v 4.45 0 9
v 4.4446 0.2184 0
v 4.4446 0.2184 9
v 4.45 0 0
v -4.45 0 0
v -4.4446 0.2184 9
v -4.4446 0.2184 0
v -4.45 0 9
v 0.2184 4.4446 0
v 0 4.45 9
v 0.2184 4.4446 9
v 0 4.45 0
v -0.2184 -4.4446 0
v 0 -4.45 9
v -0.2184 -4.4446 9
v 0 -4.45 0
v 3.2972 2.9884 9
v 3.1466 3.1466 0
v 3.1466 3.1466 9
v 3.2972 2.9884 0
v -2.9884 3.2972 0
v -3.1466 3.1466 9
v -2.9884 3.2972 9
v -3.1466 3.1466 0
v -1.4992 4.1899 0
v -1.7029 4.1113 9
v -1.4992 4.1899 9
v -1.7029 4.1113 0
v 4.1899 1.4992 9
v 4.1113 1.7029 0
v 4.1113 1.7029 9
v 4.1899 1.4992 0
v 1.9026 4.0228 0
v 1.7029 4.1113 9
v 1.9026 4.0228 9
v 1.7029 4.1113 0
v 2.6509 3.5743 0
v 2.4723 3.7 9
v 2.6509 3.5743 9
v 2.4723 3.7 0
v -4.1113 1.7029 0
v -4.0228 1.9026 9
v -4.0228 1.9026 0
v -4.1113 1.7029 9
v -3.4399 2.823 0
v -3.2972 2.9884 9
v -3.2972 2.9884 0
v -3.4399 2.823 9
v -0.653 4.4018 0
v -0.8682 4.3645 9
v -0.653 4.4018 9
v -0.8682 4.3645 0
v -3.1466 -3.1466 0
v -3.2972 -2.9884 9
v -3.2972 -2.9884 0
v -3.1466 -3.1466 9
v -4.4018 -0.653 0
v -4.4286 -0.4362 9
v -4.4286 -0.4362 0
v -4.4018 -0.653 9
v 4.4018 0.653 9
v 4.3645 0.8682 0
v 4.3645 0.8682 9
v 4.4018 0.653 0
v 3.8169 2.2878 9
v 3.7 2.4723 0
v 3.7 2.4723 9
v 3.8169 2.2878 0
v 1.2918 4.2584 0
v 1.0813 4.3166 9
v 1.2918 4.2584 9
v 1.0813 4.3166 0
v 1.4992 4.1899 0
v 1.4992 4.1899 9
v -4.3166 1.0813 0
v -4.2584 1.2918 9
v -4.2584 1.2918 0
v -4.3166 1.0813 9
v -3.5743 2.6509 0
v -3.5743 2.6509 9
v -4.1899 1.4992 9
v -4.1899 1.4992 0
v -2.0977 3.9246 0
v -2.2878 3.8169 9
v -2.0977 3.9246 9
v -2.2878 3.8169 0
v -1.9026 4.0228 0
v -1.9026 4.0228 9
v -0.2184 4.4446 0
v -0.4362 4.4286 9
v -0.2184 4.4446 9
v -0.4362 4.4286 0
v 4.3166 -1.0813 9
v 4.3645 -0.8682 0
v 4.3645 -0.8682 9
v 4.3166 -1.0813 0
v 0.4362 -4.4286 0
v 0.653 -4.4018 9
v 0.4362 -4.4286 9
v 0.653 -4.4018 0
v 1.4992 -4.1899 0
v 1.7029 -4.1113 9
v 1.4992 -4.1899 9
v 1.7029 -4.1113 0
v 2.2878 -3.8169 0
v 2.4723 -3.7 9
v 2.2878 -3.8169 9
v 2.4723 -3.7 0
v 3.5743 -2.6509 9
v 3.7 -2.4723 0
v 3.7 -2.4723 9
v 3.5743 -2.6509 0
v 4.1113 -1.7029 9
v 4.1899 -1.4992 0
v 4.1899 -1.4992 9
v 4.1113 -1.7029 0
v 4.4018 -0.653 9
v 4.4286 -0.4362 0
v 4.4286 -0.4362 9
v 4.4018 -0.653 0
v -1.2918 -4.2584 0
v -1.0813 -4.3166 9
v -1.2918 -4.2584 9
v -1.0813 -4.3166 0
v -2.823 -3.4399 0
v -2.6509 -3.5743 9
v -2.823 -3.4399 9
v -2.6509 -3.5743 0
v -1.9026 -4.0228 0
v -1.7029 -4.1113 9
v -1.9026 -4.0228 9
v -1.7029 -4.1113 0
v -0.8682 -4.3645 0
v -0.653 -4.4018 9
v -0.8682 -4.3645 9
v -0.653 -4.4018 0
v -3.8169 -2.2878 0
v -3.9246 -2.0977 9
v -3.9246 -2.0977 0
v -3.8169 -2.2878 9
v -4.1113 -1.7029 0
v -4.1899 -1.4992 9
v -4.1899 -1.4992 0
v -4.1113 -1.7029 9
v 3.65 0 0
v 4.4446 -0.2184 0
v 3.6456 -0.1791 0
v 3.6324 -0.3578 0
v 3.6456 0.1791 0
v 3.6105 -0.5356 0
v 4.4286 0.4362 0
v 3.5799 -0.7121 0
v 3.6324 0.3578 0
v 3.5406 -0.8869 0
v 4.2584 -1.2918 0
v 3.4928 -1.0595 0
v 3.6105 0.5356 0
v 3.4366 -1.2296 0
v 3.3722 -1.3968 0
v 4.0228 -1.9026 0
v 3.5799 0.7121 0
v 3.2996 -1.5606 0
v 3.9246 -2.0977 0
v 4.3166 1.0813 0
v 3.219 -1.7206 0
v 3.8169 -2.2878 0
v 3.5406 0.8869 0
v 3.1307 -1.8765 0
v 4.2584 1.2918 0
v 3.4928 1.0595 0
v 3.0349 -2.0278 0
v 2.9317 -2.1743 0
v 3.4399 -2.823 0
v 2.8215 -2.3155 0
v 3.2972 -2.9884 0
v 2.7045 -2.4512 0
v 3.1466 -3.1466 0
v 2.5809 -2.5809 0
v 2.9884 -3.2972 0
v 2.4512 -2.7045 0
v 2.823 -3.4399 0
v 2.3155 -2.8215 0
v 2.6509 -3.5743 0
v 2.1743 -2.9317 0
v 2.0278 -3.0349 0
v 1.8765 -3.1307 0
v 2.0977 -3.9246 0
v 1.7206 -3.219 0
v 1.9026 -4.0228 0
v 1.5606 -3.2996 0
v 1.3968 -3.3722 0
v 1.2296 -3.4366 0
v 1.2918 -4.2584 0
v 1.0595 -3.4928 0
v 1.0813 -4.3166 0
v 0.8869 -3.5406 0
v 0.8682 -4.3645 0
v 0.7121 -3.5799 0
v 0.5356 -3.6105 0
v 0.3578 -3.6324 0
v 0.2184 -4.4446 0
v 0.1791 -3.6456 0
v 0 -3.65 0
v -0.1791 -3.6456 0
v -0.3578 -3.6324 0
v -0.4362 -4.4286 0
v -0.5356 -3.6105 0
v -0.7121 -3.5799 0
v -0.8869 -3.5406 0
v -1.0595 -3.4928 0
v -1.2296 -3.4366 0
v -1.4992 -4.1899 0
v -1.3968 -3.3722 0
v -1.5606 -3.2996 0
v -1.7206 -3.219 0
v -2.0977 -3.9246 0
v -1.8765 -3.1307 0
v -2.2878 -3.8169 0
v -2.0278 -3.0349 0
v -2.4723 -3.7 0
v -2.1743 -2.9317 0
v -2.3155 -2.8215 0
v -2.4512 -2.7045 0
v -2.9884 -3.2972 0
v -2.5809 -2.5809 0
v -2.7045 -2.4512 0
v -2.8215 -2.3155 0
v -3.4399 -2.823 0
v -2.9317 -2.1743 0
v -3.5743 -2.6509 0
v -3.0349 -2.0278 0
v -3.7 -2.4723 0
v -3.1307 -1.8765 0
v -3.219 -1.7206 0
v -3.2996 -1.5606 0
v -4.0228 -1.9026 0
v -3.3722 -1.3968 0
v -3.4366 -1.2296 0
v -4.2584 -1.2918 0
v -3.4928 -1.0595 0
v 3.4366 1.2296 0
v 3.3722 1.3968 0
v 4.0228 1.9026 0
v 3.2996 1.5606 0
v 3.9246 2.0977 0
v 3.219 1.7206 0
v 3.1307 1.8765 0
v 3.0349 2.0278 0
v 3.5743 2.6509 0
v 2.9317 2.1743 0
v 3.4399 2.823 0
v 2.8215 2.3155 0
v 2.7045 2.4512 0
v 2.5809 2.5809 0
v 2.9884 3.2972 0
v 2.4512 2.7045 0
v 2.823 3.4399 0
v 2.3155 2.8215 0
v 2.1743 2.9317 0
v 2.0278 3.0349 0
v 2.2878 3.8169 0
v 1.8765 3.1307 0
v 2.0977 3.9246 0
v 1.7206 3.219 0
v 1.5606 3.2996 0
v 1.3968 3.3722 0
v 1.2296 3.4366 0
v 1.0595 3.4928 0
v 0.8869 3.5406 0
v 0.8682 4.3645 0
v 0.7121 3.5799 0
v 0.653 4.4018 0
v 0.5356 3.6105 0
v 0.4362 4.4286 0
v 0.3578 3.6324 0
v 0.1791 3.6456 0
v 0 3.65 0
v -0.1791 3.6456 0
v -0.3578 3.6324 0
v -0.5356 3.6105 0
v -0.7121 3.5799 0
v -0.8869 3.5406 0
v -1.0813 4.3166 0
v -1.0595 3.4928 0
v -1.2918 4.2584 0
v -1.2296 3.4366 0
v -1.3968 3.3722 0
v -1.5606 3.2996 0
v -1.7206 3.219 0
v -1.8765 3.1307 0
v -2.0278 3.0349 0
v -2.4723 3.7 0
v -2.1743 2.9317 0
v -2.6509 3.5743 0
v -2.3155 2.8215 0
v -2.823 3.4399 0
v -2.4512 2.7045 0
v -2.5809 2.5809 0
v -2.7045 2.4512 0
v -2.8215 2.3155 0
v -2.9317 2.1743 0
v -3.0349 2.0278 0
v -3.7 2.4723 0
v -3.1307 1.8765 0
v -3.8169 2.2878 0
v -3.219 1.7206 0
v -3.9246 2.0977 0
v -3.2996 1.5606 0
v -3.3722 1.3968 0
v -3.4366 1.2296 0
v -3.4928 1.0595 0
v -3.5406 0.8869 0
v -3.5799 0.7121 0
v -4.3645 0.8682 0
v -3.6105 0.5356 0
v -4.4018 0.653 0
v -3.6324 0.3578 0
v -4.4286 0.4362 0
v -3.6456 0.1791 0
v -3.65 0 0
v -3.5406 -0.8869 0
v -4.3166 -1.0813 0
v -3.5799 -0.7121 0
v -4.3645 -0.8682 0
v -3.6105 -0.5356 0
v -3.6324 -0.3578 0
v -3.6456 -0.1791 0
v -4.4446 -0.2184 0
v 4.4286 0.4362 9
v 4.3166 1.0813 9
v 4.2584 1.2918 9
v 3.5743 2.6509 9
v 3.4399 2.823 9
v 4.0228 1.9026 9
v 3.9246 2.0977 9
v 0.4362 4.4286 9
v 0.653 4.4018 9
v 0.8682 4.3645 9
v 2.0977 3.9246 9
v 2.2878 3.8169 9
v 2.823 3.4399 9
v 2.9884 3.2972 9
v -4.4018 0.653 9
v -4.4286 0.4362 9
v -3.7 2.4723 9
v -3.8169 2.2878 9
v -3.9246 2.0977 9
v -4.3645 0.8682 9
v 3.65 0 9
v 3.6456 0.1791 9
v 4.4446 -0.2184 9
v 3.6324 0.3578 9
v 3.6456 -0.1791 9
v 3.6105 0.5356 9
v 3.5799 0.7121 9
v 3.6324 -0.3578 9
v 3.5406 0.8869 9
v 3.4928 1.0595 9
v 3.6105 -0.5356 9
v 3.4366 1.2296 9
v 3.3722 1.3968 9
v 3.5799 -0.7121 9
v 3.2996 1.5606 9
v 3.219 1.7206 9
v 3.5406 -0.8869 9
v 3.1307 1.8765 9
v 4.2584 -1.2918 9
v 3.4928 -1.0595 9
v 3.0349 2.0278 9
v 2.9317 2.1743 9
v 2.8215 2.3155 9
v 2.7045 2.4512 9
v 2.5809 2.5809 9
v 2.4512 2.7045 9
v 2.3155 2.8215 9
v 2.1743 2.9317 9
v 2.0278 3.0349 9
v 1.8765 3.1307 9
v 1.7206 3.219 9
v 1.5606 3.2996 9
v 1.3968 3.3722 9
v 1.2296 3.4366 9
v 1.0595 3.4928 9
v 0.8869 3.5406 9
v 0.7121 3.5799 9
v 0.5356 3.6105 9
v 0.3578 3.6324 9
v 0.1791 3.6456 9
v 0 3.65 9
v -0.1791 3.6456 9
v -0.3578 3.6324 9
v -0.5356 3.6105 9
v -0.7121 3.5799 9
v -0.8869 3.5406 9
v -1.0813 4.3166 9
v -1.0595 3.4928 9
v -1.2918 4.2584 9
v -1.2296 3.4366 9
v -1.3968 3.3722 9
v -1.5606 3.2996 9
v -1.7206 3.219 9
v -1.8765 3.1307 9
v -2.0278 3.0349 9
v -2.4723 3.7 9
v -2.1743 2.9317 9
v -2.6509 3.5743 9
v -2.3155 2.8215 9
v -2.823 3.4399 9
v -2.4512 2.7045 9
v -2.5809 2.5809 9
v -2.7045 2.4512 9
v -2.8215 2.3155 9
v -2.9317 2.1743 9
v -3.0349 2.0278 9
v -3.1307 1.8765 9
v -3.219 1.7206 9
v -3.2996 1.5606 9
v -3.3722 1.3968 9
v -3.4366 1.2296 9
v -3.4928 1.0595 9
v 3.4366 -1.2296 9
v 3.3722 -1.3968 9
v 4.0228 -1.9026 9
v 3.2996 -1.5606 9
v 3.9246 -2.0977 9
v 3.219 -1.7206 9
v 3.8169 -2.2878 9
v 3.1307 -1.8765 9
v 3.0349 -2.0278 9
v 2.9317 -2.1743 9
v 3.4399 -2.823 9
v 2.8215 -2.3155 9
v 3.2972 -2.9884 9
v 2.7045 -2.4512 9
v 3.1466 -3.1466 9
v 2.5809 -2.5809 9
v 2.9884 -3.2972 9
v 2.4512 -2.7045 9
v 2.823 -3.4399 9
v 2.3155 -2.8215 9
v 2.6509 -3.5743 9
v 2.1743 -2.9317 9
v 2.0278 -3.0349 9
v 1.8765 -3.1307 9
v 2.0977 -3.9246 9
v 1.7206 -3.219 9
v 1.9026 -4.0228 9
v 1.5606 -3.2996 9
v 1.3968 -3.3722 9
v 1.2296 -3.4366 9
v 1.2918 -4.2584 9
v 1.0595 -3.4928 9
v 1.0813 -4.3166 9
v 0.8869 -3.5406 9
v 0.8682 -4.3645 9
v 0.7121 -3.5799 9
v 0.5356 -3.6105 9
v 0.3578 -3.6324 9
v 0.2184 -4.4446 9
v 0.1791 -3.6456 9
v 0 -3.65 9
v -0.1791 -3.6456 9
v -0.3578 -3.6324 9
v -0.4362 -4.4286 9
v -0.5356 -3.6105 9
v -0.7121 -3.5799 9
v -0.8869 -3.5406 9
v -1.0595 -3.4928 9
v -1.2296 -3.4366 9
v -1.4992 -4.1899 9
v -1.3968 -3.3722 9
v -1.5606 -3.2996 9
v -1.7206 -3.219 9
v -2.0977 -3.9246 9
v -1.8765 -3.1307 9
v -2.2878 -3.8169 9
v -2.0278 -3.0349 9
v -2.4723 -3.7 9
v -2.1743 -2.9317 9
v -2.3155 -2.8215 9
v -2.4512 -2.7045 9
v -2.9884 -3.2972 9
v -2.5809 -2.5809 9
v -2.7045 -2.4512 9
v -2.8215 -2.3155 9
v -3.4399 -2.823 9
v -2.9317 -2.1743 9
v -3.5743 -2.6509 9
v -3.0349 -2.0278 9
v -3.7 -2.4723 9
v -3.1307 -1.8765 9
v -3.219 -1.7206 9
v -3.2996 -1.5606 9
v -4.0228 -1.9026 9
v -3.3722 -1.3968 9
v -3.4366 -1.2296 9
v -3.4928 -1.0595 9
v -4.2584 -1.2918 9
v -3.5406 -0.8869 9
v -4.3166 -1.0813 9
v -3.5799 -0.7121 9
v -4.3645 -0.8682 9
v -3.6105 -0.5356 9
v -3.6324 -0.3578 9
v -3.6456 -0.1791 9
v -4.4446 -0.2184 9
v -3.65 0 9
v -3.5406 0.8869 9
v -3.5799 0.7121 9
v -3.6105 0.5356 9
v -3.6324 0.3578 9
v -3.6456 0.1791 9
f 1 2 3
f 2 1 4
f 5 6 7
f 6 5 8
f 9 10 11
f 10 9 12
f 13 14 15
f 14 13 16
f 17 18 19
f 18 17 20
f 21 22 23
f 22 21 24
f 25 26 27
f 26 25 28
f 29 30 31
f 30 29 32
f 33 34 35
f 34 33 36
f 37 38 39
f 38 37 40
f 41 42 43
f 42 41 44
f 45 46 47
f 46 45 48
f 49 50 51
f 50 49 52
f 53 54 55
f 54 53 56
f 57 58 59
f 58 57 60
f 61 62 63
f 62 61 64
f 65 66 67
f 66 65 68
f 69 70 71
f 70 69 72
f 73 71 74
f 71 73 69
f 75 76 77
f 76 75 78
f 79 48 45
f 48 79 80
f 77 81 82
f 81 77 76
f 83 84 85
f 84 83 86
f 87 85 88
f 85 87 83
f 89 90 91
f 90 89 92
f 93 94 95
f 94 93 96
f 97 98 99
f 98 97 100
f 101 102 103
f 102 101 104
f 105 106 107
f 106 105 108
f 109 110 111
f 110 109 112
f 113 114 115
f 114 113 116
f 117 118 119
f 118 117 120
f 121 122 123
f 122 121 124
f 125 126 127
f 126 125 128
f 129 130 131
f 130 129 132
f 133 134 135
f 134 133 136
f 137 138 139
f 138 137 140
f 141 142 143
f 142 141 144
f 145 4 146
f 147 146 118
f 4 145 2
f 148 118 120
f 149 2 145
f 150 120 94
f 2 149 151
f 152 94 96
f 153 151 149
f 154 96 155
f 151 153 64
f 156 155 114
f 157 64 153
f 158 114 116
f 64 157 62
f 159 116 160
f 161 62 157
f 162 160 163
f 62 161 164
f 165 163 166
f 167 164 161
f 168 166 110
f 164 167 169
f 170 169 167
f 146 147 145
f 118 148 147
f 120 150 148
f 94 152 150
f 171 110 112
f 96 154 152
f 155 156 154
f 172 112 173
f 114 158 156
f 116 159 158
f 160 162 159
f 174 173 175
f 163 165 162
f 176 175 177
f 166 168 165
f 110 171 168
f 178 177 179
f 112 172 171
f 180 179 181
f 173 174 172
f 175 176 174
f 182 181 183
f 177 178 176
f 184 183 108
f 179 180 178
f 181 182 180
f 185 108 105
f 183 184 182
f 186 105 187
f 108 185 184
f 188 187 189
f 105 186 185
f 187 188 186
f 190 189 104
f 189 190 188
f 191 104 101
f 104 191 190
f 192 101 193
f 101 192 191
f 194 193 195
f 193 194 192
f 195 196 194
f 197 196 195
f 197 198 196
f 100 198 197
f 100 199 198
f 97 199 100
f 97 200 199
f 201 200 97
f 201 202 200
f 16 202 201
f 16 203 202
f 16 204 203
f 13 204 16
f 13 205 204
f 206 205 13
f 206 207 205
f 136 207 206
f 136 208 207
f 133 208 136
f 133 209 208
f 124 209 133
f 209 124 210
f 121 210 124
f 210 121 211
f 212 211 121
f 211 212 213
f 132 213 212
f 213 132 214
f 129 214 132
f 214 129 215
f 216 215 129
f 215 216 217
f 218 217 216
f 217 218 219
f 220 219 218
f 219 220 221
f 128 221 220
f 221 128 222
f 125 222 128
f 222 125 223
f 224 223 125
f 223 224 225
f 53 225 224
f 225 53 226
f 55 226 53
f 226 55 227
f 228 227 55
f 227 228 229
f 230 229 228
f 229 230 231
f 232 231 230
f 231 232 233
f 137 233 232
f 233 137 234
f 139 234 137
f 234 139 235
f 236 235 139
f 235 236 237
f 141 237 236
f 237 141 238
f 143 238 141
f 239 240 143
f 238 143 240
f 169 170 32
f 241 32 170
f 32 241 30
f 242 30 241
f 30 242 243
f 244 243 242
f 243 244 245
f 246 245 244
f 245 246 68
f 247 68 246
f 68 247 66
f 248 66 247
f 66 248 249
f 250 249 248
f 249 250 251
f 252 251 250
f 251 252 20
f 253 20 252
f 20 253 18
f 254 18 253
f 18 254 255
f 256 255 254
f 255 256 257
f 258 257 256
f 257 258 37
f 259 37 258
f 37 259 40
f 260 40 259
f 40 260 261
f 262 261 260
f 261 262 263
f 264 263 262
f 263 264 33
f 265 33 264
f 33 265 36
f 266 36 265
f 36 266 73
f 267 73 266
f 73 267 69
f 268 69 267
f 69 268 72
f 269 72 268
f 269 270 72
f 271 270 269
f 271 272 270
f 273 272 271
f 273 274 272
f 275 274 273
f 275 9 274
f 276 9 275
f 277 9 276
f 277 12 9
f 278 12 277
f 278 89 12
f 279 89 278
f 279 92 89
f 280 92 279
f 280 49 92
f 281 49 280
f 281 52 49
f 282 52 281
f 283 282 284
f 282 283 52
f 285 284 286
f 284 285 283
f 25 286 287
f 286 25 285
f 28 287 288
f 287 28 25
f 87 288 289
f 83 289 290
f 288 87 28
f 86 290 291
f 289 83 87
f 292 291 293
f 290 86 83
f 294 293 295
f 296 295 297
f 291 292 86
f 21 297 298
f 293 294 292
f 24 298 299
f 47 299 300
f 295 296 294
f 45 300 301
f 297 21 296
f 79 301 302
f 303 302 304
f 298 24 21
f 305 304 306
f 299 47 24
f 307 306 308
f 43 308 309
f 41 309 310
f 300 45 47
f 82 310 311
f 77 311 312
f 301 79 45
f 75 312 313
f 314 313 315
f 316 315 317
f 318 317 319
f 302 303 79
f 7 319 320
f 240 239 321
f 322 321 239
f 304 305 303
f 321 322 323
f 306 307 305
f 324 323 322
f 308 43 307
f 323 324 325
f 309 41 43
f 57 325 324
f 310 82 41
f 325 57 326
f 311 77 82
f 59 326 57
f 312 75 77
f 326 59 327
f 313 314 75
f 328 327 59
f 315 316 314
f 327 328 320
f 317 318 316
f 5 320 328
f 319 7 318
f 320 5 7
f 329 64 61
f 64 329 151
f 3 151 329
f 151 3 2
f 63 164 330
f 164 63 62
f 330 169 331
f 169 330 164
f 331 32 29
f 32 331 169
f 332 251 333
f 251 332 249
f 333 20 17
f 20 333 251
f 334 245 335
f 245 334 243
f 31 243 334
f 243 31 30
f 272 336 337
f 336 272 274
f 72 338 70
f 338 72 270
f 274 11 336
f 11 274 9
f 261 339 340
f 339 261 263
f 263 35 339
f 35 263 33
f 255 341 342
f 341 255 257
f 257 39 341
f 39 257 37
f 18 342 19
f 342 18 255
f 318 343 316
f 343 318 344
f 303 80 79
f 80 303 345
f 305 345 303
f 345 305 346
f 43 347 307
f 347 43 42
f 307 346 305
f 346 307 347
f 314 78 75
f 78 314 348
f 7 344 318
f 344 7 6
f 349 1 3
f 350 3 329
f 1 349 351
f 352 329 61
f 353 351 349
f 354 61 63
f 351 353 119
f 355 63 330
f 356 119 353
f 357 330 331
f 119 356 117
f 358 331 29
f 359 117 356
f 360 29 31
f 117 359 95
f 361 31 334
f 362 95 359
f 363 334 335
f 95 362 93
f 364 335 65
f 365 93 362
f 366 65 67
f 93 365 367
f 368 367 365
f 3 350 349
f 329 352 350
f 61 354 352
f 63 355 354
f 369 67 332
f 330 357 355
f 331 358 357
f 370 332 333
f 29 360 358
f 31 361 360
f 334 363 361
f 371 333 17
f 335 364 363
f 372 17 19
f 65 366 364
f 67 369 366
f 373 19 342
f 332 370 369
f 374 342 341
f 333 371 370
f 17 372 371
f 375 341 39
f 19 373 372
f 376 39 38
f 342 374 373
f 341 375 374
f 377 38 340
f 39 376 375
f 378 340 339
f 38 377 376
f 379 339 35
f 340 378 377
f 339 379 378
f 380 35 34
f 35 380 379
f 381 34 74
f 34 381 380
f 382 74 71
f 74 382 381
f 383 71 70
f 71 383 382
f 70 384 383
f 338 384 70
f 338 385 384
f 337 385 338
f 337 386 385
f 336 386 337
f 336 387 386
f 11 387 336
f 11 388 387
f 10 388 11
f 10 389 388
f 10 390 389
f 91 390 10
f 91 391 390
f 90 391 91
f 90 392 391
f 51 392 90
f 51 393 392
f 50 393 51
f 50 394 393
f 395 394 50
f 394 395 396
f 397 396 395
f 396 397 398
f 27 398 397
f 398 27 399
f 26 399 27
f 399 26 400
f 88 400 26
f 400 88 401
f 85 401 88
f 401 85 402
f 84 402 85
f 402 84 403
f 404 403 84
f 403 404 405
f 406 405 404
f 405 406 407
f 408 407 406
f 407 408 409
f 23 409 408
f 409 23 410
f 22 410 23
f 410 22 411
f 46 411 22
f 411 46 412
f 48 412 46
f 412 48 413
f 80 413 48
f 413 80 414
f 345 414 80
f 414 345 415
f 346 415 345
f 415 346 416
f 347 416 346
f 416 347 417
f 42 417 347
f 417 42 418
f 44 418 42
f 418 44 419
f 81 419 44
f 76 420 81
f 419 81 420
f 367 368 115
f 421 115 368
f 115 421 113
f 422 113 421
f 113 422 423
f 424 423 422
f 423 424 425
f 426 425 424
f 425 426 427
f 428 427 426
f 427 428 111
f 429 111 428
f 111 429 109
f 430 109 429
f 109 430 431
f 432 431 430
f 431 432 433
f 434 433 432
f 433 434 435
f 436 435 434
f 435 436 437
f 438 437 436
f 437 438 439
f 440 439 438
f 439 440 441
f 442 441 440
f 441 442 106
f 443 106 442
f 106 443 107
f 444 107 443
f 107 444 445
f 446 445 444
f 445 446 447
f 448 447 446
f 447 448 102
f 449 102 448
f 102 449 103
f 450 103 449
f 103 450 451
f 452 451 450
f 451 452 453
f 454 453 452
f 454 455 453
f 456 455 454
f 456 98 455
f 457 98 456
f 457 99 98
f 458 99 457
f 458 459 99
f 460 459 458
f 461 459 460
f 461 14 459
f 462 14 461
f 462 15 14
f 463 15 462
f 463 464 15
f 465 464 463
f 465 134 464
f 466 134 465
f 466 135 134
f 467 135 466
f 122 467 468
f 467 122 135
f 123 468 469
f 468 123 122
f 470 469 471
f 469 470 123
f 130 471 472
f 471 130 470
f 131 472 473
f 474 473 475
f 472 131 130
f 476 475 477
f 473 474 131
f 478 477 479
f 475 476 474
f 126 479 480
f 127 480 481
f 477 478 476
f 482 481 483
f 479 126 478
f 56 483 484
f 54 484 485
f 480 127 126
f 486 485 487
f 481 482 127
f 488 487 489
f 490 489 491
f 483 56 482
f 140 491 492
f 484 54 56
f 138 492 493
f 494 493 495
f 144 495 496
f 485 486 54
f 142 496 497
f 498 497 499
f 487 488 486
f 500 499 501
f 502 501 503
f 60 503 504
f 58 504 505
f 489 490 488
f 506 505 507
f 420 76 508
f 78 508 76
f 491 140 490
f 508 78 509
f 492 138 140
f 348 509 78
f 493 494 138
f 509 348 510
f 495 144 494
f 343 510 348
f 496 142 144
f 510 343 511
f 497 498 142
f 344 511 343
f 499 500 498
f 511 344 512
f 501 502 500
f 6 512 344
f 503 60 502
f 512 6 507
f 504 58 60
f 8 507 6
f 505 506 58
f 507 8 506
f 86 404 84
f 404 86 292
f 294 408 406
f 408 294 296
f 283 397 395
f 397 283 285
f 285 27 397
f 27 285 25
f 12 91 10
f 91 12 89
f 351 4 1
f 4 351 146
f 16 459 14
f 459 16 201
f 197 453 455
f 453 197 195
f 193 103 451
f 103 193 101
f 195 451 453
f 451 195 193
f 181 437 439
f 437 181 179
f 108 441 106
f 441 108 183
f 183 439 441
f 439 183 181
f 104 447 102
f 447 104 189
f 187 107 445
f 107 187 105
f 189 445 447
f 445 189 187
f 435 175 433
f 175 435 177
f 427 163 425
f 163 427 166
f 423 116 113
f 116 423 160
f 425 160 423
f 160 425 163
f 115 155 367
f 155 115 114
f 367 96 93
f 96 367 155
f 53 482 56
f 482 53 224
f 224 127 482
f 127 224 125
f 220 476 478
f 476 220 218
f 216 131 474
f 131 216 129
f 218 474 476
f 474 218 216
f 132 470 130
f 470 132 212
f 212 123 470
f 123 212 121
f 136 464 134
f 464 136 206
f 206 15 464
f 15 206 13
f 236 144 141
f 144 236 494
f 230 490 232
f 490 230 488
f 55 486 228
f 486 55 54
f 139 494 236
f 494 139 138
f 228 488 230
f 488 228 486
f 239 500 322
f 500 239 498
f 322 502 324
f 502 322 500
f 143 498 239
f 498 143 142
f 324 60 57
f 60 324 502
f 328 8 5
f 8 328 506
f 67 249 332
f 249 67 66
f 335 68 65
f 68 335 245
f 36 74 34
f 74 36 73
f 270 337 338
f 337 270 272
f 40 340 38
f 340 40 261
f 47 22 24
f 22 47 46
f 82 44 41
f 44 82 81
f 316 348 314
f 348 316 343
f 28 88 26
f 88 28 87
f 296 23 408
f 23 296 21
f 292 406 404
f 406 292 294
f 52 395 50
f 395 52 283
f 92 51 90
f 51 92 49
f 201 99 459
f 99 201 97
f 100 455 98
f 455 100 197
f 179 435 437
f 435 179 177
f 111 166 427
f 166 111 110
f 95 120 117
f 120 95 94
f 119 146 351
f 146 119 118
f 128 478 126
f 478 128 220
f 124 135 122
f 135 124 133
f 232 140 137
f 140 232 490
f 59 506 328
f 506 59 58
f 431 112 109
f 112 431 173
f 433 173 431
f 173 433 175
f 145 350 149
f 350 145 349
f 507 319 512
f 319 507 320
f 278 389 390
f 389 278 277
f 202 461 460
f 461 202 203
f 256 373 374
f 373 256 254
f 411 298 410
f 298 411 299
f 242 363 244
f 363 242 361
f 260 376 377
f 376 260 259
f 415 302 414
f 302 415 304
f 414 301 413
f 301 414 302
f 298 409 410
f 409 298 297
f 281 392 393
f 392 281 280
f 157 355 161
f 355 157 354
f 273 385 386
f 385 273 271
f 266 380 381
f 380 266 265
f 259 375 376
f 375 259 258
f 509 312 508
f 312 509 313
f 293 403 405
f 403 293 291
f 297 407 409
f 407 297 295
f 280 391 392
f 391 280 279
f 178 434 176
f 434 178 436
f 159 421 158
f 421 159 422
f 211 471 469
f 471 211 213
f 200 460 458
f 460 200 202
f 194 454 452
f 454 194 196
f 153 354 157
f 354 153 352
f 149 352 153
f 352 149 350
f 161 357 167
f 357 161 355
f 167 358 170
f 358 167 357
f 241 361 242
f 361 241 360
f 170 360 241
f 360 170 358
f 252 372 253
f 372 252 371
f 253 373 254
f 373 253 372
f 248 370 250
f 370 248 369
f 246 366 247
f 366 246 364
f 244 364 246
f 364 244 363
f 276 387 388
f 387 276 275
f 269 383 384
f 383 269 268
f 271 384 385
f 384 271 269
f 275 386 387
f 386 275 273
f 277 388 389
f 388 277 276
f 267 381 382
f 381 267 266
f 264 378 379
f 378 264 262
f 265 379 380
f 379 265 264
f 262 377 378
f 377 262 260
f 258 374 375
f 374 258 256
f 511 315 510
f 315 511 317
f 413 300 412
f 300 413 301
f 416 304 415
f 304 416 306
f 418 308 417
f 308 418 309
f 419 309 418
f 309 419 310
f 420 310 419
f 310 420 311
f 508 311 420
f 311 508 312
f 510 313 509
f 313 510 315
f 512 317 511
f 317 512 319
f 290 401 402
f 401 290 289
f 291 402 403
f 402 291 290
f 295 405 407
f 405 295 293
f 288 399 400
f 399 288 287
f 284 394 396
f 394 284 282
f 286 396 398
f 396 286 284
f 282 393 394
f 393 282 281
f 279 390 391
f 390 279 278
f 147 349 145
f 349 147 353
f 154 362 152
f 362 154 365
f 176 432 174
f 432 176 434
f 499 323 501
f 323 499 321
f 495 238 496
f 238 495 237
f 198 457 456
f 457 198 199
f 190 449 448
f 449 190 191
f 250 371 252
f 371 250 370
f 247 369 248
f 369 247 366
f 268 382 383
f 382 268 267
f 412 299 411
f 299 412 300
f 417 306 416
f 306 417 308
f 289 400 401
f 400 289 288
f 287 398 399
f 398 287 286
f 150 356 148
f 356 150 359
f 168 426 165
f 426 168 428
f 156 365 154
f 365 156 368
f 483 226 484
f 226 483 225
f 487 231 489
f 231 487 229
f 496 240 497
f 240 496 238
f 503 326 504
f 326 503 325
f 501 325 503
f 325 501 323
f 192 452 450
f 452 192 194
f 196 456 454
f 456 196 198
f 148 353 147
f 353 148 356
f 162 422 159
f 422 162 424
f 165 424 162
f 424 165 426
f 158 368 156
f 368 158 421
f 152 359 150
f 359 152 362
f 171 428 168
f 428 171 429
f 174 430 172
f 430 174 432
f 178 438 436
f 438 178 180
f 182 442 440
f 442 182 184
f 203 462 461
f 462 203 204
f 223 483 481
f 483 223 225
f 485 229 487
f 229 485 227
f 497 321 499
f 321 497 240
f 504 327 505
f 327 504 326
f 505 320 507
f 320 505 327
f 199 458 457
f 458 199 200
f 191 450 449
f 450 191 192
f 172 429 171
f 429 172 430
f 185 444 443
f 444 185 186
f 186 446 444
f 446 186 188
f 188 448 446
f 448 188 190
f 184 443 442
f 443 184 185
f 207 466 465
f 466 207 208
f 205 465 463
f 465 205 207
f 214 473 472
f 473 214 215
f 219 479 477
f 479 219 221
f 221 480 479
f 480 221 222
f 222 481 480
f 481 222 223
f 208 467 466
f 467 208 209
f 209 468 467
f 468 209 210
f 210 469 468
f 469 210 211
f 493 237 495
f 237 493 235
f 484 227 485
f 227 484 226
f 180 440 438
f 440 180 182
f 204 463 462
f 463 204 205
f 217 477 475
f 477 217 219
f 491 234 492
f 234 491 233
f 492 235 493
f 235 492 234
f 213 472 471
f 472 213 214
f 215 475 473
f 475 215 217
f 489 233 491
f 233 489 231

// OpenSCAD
/**
 * Ink Cartridge Stabilizer Ring for Pelikan Pura P40 Fountain Pen
 *
 * The Pelikan Pura P40 is a nice low-to-mid fountain pen and uses
 * standard international ink cartridges. Unfortunately, it lacks a 
 * close fitting guide channel for the cartridge, so that it can 
 * easily move sideways and even slide out.
 * This ring is supposed to be inserted into the section and reduces
 * the amount of play a cartridge or converter has.
 *
 * Copyright 2018, Hendrik Busch
 * https://github.com/hmbusch
 *
 * Licensed under Creative Commons Attribution Share Alike 4.0.
 * https://creativecommons.org/licenses/by-sa/4.0/
 */

$fn = 128;

insetHeight = 9;
insetTopDia = 8.9;
insetBottomDia = 8.9;

cartridgeDiameter = 7.3;

color("Darkblue") difference()  {
    cylinder(d1 = insetBottomDia, d2 = insetTopDia, h = insetHeight);
    translate([0, 0, -0.1]) cylinder(d = cartridgeDiameter, h = insetHeight + 0.2);
}
